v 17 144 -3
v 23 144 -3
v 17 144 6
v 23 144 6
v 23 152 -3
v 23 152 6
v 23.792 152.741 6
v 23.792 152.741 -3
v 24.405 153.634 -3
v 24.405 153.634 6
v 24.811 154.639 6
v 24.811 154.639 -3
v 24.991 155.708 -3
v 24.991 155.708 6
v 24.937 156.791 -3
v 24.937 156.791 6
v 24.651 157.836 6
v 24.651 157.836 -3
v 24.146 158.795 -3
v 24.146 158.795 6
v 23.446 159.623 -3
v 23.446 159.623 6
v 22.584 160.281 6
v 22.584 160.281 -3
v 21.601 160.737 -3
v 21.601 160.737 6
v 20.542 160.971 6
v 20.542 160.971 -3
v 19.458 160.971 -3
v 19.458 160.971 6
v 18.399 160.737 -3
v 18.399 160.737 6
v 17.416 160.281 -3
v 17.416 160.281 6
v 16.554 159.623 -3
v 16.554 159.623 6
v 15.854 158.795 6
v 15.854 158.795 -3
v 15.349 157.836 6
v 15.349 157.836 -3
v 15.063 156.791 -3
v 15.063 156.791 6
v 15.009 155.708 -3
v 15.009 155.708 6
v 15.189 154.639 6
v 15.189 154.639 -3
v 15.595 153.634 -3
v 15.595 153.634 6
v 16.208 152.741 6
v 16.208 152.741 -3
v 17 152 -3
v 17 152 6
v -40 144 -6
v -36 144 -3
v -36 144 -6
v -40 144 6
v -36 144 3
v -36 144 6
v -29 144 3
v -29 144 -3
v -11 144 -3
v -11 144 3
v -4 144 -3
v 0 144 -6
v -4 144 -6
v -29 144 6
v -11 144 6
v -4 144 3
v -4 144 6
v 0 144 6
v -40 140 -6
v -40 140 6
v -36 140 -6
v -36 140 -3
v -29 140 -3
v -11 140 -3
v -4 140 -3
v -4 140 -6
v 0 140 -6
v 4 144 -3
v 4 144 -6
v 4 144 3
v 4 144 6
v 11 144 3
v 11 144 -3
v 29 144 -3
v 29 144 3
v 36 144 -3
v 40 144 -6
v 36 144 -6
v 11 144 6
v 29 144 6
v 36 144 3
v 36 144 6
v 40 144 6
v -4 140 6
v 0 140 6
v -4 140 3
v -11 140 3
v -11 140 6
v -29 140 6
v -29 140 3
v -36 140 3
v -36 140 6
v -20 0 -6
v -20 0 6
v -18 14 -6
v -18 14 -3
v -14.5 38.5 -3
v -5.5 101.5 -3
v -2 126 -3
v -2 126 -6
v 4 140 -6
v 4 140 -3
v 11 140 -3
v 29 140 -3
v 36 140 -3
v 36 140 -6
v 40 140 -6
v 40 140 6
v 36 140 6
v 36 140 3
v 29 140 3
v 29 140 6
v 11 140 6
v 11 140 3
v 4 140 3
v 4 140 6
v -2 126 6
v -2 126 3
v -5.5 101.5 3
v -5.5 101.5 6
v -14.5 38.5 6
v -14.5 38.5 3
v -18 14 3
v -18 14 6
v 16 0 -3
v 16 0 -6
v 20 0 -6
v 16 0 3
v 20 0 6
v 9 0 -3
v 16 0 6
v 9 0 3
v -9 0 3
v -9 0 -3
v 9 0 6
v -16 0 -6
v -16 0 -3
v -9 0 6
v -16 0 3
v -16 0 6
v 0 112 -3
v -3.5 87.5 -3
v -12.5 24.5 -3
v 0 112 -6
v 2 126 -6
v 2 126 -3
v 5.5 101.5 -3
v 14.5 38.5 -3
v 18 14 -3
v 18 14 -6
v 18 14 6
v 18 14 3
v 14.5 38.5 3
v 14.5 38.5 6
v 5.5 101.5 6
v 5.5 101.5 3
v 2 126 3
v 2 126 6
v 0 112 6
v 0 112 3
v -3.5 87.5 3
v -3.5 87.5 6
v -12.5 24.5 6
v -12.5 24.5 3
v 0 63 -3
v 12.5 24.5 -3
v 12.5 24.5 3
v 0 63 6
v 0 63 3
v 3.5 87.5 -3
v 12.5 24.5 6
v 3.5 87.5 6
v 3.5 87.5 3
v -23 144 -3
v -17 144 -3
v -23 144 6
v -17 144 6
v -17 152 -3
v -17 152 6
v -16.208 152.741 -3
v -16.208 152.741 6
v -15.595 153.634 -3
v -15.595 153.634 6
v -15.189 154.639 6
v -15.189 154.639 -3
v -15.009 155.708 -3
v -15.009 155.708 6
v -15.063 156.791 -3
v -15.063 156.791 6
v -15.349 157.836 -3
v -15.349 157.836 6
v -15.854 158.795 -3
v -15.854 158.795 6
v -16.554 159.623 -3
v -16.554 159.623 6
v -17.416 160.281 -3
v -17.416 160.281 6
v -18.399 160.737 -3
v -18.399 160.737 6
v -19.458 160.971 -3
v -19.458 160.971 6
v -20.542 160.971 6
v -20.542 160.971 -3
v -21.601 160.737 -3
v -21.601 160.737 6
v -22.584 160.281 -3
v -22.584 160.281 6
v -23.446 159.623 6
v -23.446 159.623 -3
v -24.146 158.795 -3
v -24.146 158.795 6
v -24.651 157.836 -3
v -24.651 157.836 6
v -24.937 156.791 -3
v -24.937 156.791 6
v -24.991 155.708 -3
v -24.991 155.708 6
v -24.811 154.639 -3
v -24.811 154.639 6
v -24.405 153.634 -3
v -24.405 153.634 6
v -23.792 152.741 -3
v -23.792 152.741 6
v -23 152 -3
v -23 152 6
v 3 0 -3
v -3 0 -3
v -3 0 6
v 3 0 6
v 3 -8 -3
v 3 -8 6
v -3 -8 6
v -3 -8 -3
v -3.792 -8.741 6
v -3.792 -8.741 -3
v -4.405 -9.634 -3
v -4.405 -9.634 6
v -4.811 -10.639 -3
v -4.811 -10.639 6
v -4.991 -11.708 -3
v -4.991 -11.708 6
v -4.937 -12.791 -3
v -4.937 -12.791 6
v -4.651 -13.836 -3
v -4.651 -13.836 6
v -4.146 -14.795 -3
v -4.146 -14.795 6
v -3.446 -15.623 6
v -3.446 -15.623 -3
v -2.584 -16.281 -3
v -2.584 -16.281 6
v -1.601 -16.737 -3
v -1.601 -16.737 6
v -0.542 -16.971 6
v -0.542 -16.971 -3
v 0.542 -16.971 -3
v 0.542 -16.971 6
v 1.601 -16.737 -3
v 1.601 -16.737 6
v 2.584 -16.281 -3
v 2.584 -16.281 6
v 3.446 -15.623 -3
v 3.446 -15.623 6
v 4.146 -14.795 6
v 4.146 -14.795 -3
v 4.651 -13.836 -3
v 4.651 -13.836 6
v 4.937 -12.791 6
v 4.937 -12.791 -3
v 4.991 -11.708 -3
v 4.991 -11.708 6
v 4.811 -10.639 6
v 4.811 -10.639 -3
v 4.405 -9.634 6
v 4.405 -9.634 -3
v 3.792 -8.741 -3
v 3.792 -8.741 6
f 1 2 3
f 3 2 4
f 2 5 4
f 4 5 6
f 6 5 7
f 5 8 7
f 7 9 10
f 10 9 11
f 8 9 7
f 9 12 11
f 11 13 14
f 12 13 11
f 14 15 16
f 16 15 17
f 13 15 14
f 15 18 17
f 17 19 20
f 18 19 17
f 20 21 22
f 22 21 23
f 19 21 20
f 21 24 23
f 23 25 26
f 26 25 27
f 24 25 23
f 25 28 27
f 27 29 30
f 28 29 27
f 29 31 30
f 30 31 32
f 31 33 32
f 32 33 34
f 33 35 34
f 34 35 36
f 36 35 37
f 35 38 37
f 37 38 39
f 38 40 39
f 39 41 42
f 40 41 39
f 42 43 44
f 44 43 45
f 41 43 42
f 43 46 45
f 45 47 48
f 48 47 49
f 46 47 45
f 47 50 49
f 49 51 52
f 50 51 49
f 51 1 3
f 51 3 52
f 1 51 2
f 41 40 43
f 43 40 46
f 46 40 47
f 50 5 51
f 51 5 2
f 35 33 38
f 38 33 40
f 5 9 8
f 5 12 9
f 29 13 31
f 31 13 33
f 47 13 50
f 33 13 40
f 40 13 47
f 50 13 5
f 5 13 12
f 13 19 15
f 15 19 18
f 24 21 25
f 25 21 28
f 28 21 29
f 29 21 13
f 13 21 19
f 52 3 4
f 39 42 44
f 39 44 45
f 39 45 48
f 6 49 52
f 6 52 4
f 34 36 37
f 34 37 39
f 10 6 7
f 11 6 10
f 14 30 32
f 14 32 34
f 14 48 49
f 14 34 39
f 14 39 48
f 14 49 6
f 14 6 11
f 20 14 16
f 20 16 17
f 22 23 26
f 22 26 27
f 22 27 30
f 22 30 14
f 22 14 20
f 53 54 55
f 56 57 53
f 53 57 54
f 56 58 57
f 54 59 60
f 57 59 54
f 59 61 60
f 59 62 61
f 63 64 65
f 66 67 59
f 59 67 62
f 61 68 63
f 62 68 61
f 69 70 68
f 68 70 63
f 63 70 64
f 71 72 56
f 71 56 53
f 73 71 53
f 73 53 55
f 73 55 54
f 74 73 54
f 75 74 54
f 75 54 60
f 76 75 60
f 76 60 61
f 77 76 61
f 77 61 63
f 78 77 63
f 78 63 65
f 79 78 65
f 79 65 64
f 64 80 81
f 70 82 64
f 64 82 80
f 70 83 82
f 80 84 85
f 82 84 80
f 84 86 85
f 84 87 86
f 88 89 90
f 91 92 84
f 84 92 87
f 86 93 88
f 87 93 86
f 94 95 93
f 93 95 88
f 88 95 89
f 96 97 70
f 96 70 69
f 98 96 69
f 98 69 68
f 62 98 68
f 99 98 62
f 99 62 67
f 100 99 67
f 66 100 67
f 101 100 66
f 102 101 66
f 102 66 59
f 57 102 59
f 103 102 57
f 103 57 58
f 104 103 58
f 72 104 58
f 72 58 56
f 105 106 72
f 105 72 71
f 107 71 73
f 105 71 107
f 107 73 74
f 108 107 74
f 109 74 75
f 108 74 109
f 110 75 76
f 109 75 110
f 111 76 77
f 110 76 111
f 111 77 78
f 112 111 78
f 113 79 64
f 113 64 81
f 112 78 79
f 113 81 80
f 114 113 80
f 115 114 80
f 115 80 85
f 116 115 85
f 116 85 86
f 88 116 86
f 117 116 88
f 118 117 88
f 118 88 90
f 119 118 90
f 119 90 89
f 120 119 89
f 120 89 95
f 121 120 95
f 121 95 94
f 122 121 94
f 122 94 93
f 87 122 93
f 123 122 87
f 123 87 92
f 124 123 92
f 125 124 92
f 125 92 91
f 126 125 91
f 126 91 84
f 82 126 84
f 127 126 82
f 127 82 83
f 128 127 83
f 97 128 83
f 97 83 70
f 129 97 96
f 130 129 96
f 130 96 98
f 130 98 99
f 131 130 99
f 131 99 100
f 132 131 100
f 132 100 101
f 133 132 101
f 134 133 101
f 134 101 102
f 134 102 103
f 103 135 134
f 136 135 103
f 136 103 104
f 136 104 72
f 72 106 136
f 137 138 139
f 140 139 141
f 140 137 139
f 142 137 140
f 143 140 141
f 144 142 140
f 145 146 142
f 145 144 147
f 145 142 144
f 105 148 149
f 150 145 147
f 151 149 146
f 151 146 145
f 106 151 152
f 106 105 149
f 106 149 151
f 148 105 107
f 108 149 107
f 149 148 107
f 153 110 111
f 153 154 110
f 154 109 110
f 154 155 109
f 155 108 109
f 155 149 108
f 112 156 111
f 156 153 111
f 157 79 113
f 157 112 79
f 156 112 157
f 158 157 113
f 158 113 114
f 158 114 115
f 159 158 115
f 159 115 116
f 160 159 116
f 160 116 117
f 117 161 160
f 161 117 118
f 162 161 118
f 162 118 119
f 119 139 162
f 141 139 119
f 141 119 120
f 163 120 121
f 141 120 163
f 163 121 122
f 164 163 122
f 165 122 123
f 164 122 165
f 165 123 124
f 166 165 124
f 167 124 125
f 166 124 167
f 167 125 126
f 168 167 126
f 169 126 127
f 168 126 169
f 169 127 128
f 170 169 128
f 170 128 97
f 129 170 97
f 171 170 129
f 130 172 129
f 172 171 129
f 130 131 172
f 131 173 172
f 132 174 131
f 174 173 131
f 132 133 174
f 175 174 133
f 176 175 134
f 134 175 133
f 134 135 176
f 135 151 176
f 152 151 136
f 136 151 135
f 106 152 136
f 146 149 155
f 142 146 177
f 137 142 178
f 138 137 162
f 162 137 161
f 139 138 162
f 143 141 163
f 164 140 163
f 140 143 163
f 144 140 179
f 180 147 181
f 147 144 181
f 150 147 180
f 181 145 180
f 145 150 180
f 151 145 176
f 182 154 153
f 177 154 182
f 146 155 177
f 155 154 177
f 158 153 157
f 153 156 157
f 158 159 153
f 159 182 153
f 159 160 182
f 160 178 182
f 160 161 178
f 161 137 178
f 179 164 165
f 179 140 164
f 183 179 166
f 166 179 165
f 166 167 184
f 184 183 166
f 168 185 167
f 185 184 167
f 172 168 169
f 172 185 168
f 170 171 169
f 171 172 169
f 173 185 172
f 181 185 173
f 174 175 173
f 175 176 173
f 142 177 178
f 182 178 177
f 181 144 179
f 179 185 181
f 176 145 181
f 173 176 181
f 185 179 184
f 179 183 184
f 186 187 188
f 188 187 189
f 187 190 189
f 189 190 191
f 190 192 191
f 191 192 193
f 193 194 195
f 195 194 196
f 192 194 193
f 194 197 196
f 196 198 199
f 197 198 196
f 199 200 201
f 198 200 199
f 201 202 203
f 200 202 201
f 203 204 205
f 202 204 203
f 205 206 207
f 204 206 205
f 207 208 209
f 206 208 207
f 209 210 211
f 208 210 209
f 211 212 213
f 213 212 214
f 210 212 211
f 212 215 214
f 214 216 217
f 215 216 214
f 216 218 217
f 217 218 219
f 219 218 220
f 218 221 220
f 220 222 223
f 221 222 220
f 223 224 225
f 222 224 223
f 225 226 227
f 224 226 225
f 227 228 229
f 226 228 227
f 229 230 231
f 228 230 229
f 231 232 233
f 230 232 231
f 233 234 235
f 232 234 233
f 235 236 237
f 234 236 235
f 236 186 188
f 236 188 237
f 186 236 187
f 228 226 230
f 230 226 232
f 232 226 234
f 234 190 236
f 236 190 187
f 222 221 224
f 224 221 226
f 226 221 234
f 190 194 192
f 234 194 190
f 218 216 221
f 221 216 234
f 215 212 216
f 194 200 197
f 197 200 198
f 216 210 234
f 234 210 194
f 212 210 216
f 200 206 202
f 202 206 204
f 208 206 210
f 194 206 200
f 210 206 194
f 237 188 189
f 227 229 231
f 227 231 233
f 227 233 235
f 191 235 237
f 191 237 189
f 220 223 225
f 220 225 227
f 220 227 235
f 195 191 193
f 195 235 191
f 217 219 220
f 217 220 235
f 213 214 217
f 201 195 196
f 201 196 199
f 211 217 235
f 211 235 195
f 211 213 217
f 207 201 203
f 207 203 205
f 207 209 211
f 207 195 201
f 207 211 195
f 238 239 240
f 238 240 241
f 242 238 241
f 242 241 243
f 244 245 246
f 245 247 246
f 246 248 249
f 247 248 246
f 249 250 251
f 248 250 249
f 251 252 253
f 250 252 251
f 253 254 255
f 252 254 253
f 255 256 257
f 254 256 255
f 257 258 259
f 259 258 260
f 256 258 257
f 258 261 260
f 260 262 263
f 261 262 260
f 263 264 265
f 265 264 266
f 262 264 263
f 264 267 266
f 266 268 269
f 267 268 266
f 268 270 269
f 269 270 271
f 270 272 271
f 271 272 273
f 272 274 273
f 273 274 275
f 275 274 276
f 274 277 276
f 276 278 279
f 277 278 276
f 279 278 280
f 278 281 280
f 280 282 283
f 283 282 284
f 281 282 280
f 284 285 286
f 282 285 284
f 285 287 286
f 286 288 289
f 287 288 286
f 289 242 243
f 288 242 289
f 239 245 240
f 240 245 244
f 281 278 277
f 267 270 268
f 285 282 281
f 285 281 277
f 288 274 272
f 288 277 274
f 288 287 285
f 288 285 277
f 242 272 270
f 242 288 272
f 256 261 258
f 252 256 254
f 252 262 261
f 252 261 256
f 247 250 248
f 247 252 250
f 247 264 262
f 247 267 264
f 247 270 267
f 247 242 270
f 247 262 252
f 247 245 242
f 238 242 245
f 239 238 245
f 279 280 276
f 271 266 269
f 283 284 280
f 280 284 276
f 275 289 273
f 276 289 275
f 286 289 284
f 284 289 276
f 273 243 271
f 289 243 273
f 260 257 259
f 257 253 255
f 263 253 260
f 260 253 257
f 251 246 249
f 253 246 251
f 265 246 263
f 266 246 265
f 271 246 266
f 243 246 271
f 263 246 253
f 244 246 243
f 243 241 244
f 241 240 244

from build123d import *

# Parameters (mm, degrees)
SKETCH004_W       = 32
SKETCH004_H       = 3
SKETCH005_W       = 7
SKETCH005_H       = 3
SKETCH006_W       = 7
SKETCH006_H       = 3
PAD_DEPTH         = 6
PAD_DEPTH_BACK    = 3
PAD001_DEPTH      = 6
PAD001_DEPTH_BACK = 3
PAD002_DEPTH      = 6
PAD002_DEPTH_BACK = 3


with BuildPart() as body:
    # AdditivePipe: sweep along a path in Sketch
    with BuildLine(Plane.XY) as additivepipe_path:
        Line((-20, 144), (-20, 140))
        Line((-20, 140), (0, 0))
    # Sketch002 → AdditivePipe (sweep)
    with BuildSketch(Plane.XZ):
        Polygon((-20, 6), (-20, -6), (-16, -6), (-16, -3), (-9, -3), (9, -3), (16, -3), (16, -6), (20, -6), (20, 6), (16, 6), (16, 3), (9, 3), (9, 6), (-9, 6), (-9, 3), (-16, 3), (-16, 6), align=None)
    sweep(path=additivepipe_path.line)

    # AdditivePipe001: sweep along a path in Sketch001
    with BuildLine(Plane.XY) as additivepipe001_path:
        Line((20, 144), (20, 140))
        Line((20, 140), (0, 0))
    # Sketch002 → AdditivePipe001 (sweep)
    with BuildSketch(Plane.XZ):
        Polygon((-20, 6), (-20, -6), (-16, -6), (-16, -3), (-9, -3), (9, -3), (16, -3), (16, -6), (20, -6), (20, 6), (16, 6), (16, 3), (9, 3), (9, 6), (-9, 6), (-9, 3), (-16, 3), (-16, 6), align=None)
    sweep(path=additivepipe001_path.line)

    # SubtractivePipe: sweep along a path in Sketch
    with BuildLine(Plane.XY) as subtractivepipe_path:
        Line((-20, 144), (-20, 140))
        Line((-20, 140), (0, 0))
    # Sketch004 → SubtractivePipe (sweep, cut)
    with BuildSketch(Plane.XZ):
        with Locations((0, -4.5)):
            Rectangle(SKETCH004_W, SKETCH004_H)
    sweep(path=subtractivepipe_path.line, mode=Mode.SUBTRACT)

    # SubtractivePipe001: sweep along a path in Sketch001
    with BuildLine(Plane.XY) as subtractivepipe001_path:
        Line((20, 144), (20, 140))
        Line((20, 140), (0, 0))
    # Sketch004 → SubtractivePipe001 (sweep, cut)
    with BuildSketch(Plane.XZ):
        with Locations((0, -4.5)):
            Rectangle(SKETCH004_W, SKETCH004_H)
    sweep(path=subtractivepipe001_path.line, mode=Mode.SUBTRACT)

    # SubtractivePipe002: sweep along a path in Sketch
    with BuildLine(Plane.XY) as subtractivepipe002_path:
        Line((-20, 144), (-20, 140))
        Line((-20, 140), (0, 0))
    # Sketch005 → SubtractivePipe002 (sweep, cut)
    with BuildSketch(Plane.XZ):
        with Locations((-12.5, 4.5)):
            Rectangle(SKETCH005_W, SKETCH005_H)
    sweep(path=subtractivepipe002_path.line, mode=Mode.SUBTRACT)

    # SubtractivePipe003: sweep along a path in Sketch001
    with BuildLine(Plane.XY) as subtractivepipe003_path:
        Line((20, 144), (20, 140))
        Line((20, 140), (0, 0))
    # Sketch005 → SubtractivePipe003 (sweep, cut)
    with BuildSketch(Plane.XZ):
        with Locations((-12.5, 4.5)):
            Rectangle(SKETCH005_W, SKETCH005_H)
    sweep(path=subtractivepipe003_path.line, mode=Mode.SUBTRACT)

    # SubtractivePipe004: sweep along a path in Sketch
    with BuildLine(Plane.XY) as subtractivepipe004_path:
        Line((-20, 144), (-20, 140))
        Line((-20, 140), (0, 0))
    # Sketch006 → SubtractivePipe004 (sweep, cut)
    with BuildSketch(Plane.XZ):
        with Locations((12.5, 4.5)):
            Rectangle(SKETCH006_W, SKETCH006_H)
    sweep(path=subtractivepipe004_path.line, mode=Mode.SUBTRACT)

    # SubtractivePipe005: sweep along a path in Sketch001
    with BuildLine(Plane.XY) as subtractivepipe005_path:
        Line((20, 144), (20, 140))
        Line((20, 140), (0, 0))
    # Sketch006 → SubtractivePipe005 (sweep, cut)
    with BuildSketch(Plane.XZ):
        with Locations((12.5, 4.5)):
            Rectangle(SKETCH006_W, SKETCH006_H)
    sweep(path=subtractivepipe005_path.line, mode=Mode.SUBTRACT)


with BuildPart() as body001:
    # Sketch009 → Pad (new body, two sides)
    with BuildSketch(Plane.XY) as pad_sk:
        with BuildLine():
            Line((-3, 0), (3, 0))
            Line((3, 0), (3, -8))
            ThreePointArc((-3, -8), (0, -17), (3, -8))
            Line((-3, 0), (-3, -8))
        make_face()
    extrude(amount=PAD_DEPTH)
    extrude(pad_sk.sketch, amount=-PAD_DEPTH_BACK)


with BuildPart() as male2:
    # Sketch010 → Pad001 (new body, two sides)
    with BuildSketch(Plane.XY) as pad001_sk:
        with BuildLine():
            Line((-23, 144), (-17, 144))
            Line((-17, 144), (-17, 152))
            ThreePointArc((-17, 152), (-20, 161), (-23, 152))
            Line((-23, 144), (-23, 152))
        make_face()
    extrude(amount=PAD001_DEPTH)
    extrude(pad001_sk.sketch, amount=-PAD001_DEPTH_BACK)


with BuildPart() as male3:
    # Sketch011 → Pad002 (new body, two sides)
    with BuildSketch(Plane.XY) as pad002_sk:
        with BuildLine():
            Line((17, 144), (23, 144))
            Line((23, 144), (23, 152))
            ThreePointArc((23, 152), (20, 161), (17, 152))
            Line((17, 144), (17, 152))
        make_face()
    extrude(amount=PAD002_DEPTH)
    extrude(pad002_sk.sketch, amount=-PAD002_DEPTH_BACK)


solid = Compound([body.part, body001.part, male2.part, male3.part])
